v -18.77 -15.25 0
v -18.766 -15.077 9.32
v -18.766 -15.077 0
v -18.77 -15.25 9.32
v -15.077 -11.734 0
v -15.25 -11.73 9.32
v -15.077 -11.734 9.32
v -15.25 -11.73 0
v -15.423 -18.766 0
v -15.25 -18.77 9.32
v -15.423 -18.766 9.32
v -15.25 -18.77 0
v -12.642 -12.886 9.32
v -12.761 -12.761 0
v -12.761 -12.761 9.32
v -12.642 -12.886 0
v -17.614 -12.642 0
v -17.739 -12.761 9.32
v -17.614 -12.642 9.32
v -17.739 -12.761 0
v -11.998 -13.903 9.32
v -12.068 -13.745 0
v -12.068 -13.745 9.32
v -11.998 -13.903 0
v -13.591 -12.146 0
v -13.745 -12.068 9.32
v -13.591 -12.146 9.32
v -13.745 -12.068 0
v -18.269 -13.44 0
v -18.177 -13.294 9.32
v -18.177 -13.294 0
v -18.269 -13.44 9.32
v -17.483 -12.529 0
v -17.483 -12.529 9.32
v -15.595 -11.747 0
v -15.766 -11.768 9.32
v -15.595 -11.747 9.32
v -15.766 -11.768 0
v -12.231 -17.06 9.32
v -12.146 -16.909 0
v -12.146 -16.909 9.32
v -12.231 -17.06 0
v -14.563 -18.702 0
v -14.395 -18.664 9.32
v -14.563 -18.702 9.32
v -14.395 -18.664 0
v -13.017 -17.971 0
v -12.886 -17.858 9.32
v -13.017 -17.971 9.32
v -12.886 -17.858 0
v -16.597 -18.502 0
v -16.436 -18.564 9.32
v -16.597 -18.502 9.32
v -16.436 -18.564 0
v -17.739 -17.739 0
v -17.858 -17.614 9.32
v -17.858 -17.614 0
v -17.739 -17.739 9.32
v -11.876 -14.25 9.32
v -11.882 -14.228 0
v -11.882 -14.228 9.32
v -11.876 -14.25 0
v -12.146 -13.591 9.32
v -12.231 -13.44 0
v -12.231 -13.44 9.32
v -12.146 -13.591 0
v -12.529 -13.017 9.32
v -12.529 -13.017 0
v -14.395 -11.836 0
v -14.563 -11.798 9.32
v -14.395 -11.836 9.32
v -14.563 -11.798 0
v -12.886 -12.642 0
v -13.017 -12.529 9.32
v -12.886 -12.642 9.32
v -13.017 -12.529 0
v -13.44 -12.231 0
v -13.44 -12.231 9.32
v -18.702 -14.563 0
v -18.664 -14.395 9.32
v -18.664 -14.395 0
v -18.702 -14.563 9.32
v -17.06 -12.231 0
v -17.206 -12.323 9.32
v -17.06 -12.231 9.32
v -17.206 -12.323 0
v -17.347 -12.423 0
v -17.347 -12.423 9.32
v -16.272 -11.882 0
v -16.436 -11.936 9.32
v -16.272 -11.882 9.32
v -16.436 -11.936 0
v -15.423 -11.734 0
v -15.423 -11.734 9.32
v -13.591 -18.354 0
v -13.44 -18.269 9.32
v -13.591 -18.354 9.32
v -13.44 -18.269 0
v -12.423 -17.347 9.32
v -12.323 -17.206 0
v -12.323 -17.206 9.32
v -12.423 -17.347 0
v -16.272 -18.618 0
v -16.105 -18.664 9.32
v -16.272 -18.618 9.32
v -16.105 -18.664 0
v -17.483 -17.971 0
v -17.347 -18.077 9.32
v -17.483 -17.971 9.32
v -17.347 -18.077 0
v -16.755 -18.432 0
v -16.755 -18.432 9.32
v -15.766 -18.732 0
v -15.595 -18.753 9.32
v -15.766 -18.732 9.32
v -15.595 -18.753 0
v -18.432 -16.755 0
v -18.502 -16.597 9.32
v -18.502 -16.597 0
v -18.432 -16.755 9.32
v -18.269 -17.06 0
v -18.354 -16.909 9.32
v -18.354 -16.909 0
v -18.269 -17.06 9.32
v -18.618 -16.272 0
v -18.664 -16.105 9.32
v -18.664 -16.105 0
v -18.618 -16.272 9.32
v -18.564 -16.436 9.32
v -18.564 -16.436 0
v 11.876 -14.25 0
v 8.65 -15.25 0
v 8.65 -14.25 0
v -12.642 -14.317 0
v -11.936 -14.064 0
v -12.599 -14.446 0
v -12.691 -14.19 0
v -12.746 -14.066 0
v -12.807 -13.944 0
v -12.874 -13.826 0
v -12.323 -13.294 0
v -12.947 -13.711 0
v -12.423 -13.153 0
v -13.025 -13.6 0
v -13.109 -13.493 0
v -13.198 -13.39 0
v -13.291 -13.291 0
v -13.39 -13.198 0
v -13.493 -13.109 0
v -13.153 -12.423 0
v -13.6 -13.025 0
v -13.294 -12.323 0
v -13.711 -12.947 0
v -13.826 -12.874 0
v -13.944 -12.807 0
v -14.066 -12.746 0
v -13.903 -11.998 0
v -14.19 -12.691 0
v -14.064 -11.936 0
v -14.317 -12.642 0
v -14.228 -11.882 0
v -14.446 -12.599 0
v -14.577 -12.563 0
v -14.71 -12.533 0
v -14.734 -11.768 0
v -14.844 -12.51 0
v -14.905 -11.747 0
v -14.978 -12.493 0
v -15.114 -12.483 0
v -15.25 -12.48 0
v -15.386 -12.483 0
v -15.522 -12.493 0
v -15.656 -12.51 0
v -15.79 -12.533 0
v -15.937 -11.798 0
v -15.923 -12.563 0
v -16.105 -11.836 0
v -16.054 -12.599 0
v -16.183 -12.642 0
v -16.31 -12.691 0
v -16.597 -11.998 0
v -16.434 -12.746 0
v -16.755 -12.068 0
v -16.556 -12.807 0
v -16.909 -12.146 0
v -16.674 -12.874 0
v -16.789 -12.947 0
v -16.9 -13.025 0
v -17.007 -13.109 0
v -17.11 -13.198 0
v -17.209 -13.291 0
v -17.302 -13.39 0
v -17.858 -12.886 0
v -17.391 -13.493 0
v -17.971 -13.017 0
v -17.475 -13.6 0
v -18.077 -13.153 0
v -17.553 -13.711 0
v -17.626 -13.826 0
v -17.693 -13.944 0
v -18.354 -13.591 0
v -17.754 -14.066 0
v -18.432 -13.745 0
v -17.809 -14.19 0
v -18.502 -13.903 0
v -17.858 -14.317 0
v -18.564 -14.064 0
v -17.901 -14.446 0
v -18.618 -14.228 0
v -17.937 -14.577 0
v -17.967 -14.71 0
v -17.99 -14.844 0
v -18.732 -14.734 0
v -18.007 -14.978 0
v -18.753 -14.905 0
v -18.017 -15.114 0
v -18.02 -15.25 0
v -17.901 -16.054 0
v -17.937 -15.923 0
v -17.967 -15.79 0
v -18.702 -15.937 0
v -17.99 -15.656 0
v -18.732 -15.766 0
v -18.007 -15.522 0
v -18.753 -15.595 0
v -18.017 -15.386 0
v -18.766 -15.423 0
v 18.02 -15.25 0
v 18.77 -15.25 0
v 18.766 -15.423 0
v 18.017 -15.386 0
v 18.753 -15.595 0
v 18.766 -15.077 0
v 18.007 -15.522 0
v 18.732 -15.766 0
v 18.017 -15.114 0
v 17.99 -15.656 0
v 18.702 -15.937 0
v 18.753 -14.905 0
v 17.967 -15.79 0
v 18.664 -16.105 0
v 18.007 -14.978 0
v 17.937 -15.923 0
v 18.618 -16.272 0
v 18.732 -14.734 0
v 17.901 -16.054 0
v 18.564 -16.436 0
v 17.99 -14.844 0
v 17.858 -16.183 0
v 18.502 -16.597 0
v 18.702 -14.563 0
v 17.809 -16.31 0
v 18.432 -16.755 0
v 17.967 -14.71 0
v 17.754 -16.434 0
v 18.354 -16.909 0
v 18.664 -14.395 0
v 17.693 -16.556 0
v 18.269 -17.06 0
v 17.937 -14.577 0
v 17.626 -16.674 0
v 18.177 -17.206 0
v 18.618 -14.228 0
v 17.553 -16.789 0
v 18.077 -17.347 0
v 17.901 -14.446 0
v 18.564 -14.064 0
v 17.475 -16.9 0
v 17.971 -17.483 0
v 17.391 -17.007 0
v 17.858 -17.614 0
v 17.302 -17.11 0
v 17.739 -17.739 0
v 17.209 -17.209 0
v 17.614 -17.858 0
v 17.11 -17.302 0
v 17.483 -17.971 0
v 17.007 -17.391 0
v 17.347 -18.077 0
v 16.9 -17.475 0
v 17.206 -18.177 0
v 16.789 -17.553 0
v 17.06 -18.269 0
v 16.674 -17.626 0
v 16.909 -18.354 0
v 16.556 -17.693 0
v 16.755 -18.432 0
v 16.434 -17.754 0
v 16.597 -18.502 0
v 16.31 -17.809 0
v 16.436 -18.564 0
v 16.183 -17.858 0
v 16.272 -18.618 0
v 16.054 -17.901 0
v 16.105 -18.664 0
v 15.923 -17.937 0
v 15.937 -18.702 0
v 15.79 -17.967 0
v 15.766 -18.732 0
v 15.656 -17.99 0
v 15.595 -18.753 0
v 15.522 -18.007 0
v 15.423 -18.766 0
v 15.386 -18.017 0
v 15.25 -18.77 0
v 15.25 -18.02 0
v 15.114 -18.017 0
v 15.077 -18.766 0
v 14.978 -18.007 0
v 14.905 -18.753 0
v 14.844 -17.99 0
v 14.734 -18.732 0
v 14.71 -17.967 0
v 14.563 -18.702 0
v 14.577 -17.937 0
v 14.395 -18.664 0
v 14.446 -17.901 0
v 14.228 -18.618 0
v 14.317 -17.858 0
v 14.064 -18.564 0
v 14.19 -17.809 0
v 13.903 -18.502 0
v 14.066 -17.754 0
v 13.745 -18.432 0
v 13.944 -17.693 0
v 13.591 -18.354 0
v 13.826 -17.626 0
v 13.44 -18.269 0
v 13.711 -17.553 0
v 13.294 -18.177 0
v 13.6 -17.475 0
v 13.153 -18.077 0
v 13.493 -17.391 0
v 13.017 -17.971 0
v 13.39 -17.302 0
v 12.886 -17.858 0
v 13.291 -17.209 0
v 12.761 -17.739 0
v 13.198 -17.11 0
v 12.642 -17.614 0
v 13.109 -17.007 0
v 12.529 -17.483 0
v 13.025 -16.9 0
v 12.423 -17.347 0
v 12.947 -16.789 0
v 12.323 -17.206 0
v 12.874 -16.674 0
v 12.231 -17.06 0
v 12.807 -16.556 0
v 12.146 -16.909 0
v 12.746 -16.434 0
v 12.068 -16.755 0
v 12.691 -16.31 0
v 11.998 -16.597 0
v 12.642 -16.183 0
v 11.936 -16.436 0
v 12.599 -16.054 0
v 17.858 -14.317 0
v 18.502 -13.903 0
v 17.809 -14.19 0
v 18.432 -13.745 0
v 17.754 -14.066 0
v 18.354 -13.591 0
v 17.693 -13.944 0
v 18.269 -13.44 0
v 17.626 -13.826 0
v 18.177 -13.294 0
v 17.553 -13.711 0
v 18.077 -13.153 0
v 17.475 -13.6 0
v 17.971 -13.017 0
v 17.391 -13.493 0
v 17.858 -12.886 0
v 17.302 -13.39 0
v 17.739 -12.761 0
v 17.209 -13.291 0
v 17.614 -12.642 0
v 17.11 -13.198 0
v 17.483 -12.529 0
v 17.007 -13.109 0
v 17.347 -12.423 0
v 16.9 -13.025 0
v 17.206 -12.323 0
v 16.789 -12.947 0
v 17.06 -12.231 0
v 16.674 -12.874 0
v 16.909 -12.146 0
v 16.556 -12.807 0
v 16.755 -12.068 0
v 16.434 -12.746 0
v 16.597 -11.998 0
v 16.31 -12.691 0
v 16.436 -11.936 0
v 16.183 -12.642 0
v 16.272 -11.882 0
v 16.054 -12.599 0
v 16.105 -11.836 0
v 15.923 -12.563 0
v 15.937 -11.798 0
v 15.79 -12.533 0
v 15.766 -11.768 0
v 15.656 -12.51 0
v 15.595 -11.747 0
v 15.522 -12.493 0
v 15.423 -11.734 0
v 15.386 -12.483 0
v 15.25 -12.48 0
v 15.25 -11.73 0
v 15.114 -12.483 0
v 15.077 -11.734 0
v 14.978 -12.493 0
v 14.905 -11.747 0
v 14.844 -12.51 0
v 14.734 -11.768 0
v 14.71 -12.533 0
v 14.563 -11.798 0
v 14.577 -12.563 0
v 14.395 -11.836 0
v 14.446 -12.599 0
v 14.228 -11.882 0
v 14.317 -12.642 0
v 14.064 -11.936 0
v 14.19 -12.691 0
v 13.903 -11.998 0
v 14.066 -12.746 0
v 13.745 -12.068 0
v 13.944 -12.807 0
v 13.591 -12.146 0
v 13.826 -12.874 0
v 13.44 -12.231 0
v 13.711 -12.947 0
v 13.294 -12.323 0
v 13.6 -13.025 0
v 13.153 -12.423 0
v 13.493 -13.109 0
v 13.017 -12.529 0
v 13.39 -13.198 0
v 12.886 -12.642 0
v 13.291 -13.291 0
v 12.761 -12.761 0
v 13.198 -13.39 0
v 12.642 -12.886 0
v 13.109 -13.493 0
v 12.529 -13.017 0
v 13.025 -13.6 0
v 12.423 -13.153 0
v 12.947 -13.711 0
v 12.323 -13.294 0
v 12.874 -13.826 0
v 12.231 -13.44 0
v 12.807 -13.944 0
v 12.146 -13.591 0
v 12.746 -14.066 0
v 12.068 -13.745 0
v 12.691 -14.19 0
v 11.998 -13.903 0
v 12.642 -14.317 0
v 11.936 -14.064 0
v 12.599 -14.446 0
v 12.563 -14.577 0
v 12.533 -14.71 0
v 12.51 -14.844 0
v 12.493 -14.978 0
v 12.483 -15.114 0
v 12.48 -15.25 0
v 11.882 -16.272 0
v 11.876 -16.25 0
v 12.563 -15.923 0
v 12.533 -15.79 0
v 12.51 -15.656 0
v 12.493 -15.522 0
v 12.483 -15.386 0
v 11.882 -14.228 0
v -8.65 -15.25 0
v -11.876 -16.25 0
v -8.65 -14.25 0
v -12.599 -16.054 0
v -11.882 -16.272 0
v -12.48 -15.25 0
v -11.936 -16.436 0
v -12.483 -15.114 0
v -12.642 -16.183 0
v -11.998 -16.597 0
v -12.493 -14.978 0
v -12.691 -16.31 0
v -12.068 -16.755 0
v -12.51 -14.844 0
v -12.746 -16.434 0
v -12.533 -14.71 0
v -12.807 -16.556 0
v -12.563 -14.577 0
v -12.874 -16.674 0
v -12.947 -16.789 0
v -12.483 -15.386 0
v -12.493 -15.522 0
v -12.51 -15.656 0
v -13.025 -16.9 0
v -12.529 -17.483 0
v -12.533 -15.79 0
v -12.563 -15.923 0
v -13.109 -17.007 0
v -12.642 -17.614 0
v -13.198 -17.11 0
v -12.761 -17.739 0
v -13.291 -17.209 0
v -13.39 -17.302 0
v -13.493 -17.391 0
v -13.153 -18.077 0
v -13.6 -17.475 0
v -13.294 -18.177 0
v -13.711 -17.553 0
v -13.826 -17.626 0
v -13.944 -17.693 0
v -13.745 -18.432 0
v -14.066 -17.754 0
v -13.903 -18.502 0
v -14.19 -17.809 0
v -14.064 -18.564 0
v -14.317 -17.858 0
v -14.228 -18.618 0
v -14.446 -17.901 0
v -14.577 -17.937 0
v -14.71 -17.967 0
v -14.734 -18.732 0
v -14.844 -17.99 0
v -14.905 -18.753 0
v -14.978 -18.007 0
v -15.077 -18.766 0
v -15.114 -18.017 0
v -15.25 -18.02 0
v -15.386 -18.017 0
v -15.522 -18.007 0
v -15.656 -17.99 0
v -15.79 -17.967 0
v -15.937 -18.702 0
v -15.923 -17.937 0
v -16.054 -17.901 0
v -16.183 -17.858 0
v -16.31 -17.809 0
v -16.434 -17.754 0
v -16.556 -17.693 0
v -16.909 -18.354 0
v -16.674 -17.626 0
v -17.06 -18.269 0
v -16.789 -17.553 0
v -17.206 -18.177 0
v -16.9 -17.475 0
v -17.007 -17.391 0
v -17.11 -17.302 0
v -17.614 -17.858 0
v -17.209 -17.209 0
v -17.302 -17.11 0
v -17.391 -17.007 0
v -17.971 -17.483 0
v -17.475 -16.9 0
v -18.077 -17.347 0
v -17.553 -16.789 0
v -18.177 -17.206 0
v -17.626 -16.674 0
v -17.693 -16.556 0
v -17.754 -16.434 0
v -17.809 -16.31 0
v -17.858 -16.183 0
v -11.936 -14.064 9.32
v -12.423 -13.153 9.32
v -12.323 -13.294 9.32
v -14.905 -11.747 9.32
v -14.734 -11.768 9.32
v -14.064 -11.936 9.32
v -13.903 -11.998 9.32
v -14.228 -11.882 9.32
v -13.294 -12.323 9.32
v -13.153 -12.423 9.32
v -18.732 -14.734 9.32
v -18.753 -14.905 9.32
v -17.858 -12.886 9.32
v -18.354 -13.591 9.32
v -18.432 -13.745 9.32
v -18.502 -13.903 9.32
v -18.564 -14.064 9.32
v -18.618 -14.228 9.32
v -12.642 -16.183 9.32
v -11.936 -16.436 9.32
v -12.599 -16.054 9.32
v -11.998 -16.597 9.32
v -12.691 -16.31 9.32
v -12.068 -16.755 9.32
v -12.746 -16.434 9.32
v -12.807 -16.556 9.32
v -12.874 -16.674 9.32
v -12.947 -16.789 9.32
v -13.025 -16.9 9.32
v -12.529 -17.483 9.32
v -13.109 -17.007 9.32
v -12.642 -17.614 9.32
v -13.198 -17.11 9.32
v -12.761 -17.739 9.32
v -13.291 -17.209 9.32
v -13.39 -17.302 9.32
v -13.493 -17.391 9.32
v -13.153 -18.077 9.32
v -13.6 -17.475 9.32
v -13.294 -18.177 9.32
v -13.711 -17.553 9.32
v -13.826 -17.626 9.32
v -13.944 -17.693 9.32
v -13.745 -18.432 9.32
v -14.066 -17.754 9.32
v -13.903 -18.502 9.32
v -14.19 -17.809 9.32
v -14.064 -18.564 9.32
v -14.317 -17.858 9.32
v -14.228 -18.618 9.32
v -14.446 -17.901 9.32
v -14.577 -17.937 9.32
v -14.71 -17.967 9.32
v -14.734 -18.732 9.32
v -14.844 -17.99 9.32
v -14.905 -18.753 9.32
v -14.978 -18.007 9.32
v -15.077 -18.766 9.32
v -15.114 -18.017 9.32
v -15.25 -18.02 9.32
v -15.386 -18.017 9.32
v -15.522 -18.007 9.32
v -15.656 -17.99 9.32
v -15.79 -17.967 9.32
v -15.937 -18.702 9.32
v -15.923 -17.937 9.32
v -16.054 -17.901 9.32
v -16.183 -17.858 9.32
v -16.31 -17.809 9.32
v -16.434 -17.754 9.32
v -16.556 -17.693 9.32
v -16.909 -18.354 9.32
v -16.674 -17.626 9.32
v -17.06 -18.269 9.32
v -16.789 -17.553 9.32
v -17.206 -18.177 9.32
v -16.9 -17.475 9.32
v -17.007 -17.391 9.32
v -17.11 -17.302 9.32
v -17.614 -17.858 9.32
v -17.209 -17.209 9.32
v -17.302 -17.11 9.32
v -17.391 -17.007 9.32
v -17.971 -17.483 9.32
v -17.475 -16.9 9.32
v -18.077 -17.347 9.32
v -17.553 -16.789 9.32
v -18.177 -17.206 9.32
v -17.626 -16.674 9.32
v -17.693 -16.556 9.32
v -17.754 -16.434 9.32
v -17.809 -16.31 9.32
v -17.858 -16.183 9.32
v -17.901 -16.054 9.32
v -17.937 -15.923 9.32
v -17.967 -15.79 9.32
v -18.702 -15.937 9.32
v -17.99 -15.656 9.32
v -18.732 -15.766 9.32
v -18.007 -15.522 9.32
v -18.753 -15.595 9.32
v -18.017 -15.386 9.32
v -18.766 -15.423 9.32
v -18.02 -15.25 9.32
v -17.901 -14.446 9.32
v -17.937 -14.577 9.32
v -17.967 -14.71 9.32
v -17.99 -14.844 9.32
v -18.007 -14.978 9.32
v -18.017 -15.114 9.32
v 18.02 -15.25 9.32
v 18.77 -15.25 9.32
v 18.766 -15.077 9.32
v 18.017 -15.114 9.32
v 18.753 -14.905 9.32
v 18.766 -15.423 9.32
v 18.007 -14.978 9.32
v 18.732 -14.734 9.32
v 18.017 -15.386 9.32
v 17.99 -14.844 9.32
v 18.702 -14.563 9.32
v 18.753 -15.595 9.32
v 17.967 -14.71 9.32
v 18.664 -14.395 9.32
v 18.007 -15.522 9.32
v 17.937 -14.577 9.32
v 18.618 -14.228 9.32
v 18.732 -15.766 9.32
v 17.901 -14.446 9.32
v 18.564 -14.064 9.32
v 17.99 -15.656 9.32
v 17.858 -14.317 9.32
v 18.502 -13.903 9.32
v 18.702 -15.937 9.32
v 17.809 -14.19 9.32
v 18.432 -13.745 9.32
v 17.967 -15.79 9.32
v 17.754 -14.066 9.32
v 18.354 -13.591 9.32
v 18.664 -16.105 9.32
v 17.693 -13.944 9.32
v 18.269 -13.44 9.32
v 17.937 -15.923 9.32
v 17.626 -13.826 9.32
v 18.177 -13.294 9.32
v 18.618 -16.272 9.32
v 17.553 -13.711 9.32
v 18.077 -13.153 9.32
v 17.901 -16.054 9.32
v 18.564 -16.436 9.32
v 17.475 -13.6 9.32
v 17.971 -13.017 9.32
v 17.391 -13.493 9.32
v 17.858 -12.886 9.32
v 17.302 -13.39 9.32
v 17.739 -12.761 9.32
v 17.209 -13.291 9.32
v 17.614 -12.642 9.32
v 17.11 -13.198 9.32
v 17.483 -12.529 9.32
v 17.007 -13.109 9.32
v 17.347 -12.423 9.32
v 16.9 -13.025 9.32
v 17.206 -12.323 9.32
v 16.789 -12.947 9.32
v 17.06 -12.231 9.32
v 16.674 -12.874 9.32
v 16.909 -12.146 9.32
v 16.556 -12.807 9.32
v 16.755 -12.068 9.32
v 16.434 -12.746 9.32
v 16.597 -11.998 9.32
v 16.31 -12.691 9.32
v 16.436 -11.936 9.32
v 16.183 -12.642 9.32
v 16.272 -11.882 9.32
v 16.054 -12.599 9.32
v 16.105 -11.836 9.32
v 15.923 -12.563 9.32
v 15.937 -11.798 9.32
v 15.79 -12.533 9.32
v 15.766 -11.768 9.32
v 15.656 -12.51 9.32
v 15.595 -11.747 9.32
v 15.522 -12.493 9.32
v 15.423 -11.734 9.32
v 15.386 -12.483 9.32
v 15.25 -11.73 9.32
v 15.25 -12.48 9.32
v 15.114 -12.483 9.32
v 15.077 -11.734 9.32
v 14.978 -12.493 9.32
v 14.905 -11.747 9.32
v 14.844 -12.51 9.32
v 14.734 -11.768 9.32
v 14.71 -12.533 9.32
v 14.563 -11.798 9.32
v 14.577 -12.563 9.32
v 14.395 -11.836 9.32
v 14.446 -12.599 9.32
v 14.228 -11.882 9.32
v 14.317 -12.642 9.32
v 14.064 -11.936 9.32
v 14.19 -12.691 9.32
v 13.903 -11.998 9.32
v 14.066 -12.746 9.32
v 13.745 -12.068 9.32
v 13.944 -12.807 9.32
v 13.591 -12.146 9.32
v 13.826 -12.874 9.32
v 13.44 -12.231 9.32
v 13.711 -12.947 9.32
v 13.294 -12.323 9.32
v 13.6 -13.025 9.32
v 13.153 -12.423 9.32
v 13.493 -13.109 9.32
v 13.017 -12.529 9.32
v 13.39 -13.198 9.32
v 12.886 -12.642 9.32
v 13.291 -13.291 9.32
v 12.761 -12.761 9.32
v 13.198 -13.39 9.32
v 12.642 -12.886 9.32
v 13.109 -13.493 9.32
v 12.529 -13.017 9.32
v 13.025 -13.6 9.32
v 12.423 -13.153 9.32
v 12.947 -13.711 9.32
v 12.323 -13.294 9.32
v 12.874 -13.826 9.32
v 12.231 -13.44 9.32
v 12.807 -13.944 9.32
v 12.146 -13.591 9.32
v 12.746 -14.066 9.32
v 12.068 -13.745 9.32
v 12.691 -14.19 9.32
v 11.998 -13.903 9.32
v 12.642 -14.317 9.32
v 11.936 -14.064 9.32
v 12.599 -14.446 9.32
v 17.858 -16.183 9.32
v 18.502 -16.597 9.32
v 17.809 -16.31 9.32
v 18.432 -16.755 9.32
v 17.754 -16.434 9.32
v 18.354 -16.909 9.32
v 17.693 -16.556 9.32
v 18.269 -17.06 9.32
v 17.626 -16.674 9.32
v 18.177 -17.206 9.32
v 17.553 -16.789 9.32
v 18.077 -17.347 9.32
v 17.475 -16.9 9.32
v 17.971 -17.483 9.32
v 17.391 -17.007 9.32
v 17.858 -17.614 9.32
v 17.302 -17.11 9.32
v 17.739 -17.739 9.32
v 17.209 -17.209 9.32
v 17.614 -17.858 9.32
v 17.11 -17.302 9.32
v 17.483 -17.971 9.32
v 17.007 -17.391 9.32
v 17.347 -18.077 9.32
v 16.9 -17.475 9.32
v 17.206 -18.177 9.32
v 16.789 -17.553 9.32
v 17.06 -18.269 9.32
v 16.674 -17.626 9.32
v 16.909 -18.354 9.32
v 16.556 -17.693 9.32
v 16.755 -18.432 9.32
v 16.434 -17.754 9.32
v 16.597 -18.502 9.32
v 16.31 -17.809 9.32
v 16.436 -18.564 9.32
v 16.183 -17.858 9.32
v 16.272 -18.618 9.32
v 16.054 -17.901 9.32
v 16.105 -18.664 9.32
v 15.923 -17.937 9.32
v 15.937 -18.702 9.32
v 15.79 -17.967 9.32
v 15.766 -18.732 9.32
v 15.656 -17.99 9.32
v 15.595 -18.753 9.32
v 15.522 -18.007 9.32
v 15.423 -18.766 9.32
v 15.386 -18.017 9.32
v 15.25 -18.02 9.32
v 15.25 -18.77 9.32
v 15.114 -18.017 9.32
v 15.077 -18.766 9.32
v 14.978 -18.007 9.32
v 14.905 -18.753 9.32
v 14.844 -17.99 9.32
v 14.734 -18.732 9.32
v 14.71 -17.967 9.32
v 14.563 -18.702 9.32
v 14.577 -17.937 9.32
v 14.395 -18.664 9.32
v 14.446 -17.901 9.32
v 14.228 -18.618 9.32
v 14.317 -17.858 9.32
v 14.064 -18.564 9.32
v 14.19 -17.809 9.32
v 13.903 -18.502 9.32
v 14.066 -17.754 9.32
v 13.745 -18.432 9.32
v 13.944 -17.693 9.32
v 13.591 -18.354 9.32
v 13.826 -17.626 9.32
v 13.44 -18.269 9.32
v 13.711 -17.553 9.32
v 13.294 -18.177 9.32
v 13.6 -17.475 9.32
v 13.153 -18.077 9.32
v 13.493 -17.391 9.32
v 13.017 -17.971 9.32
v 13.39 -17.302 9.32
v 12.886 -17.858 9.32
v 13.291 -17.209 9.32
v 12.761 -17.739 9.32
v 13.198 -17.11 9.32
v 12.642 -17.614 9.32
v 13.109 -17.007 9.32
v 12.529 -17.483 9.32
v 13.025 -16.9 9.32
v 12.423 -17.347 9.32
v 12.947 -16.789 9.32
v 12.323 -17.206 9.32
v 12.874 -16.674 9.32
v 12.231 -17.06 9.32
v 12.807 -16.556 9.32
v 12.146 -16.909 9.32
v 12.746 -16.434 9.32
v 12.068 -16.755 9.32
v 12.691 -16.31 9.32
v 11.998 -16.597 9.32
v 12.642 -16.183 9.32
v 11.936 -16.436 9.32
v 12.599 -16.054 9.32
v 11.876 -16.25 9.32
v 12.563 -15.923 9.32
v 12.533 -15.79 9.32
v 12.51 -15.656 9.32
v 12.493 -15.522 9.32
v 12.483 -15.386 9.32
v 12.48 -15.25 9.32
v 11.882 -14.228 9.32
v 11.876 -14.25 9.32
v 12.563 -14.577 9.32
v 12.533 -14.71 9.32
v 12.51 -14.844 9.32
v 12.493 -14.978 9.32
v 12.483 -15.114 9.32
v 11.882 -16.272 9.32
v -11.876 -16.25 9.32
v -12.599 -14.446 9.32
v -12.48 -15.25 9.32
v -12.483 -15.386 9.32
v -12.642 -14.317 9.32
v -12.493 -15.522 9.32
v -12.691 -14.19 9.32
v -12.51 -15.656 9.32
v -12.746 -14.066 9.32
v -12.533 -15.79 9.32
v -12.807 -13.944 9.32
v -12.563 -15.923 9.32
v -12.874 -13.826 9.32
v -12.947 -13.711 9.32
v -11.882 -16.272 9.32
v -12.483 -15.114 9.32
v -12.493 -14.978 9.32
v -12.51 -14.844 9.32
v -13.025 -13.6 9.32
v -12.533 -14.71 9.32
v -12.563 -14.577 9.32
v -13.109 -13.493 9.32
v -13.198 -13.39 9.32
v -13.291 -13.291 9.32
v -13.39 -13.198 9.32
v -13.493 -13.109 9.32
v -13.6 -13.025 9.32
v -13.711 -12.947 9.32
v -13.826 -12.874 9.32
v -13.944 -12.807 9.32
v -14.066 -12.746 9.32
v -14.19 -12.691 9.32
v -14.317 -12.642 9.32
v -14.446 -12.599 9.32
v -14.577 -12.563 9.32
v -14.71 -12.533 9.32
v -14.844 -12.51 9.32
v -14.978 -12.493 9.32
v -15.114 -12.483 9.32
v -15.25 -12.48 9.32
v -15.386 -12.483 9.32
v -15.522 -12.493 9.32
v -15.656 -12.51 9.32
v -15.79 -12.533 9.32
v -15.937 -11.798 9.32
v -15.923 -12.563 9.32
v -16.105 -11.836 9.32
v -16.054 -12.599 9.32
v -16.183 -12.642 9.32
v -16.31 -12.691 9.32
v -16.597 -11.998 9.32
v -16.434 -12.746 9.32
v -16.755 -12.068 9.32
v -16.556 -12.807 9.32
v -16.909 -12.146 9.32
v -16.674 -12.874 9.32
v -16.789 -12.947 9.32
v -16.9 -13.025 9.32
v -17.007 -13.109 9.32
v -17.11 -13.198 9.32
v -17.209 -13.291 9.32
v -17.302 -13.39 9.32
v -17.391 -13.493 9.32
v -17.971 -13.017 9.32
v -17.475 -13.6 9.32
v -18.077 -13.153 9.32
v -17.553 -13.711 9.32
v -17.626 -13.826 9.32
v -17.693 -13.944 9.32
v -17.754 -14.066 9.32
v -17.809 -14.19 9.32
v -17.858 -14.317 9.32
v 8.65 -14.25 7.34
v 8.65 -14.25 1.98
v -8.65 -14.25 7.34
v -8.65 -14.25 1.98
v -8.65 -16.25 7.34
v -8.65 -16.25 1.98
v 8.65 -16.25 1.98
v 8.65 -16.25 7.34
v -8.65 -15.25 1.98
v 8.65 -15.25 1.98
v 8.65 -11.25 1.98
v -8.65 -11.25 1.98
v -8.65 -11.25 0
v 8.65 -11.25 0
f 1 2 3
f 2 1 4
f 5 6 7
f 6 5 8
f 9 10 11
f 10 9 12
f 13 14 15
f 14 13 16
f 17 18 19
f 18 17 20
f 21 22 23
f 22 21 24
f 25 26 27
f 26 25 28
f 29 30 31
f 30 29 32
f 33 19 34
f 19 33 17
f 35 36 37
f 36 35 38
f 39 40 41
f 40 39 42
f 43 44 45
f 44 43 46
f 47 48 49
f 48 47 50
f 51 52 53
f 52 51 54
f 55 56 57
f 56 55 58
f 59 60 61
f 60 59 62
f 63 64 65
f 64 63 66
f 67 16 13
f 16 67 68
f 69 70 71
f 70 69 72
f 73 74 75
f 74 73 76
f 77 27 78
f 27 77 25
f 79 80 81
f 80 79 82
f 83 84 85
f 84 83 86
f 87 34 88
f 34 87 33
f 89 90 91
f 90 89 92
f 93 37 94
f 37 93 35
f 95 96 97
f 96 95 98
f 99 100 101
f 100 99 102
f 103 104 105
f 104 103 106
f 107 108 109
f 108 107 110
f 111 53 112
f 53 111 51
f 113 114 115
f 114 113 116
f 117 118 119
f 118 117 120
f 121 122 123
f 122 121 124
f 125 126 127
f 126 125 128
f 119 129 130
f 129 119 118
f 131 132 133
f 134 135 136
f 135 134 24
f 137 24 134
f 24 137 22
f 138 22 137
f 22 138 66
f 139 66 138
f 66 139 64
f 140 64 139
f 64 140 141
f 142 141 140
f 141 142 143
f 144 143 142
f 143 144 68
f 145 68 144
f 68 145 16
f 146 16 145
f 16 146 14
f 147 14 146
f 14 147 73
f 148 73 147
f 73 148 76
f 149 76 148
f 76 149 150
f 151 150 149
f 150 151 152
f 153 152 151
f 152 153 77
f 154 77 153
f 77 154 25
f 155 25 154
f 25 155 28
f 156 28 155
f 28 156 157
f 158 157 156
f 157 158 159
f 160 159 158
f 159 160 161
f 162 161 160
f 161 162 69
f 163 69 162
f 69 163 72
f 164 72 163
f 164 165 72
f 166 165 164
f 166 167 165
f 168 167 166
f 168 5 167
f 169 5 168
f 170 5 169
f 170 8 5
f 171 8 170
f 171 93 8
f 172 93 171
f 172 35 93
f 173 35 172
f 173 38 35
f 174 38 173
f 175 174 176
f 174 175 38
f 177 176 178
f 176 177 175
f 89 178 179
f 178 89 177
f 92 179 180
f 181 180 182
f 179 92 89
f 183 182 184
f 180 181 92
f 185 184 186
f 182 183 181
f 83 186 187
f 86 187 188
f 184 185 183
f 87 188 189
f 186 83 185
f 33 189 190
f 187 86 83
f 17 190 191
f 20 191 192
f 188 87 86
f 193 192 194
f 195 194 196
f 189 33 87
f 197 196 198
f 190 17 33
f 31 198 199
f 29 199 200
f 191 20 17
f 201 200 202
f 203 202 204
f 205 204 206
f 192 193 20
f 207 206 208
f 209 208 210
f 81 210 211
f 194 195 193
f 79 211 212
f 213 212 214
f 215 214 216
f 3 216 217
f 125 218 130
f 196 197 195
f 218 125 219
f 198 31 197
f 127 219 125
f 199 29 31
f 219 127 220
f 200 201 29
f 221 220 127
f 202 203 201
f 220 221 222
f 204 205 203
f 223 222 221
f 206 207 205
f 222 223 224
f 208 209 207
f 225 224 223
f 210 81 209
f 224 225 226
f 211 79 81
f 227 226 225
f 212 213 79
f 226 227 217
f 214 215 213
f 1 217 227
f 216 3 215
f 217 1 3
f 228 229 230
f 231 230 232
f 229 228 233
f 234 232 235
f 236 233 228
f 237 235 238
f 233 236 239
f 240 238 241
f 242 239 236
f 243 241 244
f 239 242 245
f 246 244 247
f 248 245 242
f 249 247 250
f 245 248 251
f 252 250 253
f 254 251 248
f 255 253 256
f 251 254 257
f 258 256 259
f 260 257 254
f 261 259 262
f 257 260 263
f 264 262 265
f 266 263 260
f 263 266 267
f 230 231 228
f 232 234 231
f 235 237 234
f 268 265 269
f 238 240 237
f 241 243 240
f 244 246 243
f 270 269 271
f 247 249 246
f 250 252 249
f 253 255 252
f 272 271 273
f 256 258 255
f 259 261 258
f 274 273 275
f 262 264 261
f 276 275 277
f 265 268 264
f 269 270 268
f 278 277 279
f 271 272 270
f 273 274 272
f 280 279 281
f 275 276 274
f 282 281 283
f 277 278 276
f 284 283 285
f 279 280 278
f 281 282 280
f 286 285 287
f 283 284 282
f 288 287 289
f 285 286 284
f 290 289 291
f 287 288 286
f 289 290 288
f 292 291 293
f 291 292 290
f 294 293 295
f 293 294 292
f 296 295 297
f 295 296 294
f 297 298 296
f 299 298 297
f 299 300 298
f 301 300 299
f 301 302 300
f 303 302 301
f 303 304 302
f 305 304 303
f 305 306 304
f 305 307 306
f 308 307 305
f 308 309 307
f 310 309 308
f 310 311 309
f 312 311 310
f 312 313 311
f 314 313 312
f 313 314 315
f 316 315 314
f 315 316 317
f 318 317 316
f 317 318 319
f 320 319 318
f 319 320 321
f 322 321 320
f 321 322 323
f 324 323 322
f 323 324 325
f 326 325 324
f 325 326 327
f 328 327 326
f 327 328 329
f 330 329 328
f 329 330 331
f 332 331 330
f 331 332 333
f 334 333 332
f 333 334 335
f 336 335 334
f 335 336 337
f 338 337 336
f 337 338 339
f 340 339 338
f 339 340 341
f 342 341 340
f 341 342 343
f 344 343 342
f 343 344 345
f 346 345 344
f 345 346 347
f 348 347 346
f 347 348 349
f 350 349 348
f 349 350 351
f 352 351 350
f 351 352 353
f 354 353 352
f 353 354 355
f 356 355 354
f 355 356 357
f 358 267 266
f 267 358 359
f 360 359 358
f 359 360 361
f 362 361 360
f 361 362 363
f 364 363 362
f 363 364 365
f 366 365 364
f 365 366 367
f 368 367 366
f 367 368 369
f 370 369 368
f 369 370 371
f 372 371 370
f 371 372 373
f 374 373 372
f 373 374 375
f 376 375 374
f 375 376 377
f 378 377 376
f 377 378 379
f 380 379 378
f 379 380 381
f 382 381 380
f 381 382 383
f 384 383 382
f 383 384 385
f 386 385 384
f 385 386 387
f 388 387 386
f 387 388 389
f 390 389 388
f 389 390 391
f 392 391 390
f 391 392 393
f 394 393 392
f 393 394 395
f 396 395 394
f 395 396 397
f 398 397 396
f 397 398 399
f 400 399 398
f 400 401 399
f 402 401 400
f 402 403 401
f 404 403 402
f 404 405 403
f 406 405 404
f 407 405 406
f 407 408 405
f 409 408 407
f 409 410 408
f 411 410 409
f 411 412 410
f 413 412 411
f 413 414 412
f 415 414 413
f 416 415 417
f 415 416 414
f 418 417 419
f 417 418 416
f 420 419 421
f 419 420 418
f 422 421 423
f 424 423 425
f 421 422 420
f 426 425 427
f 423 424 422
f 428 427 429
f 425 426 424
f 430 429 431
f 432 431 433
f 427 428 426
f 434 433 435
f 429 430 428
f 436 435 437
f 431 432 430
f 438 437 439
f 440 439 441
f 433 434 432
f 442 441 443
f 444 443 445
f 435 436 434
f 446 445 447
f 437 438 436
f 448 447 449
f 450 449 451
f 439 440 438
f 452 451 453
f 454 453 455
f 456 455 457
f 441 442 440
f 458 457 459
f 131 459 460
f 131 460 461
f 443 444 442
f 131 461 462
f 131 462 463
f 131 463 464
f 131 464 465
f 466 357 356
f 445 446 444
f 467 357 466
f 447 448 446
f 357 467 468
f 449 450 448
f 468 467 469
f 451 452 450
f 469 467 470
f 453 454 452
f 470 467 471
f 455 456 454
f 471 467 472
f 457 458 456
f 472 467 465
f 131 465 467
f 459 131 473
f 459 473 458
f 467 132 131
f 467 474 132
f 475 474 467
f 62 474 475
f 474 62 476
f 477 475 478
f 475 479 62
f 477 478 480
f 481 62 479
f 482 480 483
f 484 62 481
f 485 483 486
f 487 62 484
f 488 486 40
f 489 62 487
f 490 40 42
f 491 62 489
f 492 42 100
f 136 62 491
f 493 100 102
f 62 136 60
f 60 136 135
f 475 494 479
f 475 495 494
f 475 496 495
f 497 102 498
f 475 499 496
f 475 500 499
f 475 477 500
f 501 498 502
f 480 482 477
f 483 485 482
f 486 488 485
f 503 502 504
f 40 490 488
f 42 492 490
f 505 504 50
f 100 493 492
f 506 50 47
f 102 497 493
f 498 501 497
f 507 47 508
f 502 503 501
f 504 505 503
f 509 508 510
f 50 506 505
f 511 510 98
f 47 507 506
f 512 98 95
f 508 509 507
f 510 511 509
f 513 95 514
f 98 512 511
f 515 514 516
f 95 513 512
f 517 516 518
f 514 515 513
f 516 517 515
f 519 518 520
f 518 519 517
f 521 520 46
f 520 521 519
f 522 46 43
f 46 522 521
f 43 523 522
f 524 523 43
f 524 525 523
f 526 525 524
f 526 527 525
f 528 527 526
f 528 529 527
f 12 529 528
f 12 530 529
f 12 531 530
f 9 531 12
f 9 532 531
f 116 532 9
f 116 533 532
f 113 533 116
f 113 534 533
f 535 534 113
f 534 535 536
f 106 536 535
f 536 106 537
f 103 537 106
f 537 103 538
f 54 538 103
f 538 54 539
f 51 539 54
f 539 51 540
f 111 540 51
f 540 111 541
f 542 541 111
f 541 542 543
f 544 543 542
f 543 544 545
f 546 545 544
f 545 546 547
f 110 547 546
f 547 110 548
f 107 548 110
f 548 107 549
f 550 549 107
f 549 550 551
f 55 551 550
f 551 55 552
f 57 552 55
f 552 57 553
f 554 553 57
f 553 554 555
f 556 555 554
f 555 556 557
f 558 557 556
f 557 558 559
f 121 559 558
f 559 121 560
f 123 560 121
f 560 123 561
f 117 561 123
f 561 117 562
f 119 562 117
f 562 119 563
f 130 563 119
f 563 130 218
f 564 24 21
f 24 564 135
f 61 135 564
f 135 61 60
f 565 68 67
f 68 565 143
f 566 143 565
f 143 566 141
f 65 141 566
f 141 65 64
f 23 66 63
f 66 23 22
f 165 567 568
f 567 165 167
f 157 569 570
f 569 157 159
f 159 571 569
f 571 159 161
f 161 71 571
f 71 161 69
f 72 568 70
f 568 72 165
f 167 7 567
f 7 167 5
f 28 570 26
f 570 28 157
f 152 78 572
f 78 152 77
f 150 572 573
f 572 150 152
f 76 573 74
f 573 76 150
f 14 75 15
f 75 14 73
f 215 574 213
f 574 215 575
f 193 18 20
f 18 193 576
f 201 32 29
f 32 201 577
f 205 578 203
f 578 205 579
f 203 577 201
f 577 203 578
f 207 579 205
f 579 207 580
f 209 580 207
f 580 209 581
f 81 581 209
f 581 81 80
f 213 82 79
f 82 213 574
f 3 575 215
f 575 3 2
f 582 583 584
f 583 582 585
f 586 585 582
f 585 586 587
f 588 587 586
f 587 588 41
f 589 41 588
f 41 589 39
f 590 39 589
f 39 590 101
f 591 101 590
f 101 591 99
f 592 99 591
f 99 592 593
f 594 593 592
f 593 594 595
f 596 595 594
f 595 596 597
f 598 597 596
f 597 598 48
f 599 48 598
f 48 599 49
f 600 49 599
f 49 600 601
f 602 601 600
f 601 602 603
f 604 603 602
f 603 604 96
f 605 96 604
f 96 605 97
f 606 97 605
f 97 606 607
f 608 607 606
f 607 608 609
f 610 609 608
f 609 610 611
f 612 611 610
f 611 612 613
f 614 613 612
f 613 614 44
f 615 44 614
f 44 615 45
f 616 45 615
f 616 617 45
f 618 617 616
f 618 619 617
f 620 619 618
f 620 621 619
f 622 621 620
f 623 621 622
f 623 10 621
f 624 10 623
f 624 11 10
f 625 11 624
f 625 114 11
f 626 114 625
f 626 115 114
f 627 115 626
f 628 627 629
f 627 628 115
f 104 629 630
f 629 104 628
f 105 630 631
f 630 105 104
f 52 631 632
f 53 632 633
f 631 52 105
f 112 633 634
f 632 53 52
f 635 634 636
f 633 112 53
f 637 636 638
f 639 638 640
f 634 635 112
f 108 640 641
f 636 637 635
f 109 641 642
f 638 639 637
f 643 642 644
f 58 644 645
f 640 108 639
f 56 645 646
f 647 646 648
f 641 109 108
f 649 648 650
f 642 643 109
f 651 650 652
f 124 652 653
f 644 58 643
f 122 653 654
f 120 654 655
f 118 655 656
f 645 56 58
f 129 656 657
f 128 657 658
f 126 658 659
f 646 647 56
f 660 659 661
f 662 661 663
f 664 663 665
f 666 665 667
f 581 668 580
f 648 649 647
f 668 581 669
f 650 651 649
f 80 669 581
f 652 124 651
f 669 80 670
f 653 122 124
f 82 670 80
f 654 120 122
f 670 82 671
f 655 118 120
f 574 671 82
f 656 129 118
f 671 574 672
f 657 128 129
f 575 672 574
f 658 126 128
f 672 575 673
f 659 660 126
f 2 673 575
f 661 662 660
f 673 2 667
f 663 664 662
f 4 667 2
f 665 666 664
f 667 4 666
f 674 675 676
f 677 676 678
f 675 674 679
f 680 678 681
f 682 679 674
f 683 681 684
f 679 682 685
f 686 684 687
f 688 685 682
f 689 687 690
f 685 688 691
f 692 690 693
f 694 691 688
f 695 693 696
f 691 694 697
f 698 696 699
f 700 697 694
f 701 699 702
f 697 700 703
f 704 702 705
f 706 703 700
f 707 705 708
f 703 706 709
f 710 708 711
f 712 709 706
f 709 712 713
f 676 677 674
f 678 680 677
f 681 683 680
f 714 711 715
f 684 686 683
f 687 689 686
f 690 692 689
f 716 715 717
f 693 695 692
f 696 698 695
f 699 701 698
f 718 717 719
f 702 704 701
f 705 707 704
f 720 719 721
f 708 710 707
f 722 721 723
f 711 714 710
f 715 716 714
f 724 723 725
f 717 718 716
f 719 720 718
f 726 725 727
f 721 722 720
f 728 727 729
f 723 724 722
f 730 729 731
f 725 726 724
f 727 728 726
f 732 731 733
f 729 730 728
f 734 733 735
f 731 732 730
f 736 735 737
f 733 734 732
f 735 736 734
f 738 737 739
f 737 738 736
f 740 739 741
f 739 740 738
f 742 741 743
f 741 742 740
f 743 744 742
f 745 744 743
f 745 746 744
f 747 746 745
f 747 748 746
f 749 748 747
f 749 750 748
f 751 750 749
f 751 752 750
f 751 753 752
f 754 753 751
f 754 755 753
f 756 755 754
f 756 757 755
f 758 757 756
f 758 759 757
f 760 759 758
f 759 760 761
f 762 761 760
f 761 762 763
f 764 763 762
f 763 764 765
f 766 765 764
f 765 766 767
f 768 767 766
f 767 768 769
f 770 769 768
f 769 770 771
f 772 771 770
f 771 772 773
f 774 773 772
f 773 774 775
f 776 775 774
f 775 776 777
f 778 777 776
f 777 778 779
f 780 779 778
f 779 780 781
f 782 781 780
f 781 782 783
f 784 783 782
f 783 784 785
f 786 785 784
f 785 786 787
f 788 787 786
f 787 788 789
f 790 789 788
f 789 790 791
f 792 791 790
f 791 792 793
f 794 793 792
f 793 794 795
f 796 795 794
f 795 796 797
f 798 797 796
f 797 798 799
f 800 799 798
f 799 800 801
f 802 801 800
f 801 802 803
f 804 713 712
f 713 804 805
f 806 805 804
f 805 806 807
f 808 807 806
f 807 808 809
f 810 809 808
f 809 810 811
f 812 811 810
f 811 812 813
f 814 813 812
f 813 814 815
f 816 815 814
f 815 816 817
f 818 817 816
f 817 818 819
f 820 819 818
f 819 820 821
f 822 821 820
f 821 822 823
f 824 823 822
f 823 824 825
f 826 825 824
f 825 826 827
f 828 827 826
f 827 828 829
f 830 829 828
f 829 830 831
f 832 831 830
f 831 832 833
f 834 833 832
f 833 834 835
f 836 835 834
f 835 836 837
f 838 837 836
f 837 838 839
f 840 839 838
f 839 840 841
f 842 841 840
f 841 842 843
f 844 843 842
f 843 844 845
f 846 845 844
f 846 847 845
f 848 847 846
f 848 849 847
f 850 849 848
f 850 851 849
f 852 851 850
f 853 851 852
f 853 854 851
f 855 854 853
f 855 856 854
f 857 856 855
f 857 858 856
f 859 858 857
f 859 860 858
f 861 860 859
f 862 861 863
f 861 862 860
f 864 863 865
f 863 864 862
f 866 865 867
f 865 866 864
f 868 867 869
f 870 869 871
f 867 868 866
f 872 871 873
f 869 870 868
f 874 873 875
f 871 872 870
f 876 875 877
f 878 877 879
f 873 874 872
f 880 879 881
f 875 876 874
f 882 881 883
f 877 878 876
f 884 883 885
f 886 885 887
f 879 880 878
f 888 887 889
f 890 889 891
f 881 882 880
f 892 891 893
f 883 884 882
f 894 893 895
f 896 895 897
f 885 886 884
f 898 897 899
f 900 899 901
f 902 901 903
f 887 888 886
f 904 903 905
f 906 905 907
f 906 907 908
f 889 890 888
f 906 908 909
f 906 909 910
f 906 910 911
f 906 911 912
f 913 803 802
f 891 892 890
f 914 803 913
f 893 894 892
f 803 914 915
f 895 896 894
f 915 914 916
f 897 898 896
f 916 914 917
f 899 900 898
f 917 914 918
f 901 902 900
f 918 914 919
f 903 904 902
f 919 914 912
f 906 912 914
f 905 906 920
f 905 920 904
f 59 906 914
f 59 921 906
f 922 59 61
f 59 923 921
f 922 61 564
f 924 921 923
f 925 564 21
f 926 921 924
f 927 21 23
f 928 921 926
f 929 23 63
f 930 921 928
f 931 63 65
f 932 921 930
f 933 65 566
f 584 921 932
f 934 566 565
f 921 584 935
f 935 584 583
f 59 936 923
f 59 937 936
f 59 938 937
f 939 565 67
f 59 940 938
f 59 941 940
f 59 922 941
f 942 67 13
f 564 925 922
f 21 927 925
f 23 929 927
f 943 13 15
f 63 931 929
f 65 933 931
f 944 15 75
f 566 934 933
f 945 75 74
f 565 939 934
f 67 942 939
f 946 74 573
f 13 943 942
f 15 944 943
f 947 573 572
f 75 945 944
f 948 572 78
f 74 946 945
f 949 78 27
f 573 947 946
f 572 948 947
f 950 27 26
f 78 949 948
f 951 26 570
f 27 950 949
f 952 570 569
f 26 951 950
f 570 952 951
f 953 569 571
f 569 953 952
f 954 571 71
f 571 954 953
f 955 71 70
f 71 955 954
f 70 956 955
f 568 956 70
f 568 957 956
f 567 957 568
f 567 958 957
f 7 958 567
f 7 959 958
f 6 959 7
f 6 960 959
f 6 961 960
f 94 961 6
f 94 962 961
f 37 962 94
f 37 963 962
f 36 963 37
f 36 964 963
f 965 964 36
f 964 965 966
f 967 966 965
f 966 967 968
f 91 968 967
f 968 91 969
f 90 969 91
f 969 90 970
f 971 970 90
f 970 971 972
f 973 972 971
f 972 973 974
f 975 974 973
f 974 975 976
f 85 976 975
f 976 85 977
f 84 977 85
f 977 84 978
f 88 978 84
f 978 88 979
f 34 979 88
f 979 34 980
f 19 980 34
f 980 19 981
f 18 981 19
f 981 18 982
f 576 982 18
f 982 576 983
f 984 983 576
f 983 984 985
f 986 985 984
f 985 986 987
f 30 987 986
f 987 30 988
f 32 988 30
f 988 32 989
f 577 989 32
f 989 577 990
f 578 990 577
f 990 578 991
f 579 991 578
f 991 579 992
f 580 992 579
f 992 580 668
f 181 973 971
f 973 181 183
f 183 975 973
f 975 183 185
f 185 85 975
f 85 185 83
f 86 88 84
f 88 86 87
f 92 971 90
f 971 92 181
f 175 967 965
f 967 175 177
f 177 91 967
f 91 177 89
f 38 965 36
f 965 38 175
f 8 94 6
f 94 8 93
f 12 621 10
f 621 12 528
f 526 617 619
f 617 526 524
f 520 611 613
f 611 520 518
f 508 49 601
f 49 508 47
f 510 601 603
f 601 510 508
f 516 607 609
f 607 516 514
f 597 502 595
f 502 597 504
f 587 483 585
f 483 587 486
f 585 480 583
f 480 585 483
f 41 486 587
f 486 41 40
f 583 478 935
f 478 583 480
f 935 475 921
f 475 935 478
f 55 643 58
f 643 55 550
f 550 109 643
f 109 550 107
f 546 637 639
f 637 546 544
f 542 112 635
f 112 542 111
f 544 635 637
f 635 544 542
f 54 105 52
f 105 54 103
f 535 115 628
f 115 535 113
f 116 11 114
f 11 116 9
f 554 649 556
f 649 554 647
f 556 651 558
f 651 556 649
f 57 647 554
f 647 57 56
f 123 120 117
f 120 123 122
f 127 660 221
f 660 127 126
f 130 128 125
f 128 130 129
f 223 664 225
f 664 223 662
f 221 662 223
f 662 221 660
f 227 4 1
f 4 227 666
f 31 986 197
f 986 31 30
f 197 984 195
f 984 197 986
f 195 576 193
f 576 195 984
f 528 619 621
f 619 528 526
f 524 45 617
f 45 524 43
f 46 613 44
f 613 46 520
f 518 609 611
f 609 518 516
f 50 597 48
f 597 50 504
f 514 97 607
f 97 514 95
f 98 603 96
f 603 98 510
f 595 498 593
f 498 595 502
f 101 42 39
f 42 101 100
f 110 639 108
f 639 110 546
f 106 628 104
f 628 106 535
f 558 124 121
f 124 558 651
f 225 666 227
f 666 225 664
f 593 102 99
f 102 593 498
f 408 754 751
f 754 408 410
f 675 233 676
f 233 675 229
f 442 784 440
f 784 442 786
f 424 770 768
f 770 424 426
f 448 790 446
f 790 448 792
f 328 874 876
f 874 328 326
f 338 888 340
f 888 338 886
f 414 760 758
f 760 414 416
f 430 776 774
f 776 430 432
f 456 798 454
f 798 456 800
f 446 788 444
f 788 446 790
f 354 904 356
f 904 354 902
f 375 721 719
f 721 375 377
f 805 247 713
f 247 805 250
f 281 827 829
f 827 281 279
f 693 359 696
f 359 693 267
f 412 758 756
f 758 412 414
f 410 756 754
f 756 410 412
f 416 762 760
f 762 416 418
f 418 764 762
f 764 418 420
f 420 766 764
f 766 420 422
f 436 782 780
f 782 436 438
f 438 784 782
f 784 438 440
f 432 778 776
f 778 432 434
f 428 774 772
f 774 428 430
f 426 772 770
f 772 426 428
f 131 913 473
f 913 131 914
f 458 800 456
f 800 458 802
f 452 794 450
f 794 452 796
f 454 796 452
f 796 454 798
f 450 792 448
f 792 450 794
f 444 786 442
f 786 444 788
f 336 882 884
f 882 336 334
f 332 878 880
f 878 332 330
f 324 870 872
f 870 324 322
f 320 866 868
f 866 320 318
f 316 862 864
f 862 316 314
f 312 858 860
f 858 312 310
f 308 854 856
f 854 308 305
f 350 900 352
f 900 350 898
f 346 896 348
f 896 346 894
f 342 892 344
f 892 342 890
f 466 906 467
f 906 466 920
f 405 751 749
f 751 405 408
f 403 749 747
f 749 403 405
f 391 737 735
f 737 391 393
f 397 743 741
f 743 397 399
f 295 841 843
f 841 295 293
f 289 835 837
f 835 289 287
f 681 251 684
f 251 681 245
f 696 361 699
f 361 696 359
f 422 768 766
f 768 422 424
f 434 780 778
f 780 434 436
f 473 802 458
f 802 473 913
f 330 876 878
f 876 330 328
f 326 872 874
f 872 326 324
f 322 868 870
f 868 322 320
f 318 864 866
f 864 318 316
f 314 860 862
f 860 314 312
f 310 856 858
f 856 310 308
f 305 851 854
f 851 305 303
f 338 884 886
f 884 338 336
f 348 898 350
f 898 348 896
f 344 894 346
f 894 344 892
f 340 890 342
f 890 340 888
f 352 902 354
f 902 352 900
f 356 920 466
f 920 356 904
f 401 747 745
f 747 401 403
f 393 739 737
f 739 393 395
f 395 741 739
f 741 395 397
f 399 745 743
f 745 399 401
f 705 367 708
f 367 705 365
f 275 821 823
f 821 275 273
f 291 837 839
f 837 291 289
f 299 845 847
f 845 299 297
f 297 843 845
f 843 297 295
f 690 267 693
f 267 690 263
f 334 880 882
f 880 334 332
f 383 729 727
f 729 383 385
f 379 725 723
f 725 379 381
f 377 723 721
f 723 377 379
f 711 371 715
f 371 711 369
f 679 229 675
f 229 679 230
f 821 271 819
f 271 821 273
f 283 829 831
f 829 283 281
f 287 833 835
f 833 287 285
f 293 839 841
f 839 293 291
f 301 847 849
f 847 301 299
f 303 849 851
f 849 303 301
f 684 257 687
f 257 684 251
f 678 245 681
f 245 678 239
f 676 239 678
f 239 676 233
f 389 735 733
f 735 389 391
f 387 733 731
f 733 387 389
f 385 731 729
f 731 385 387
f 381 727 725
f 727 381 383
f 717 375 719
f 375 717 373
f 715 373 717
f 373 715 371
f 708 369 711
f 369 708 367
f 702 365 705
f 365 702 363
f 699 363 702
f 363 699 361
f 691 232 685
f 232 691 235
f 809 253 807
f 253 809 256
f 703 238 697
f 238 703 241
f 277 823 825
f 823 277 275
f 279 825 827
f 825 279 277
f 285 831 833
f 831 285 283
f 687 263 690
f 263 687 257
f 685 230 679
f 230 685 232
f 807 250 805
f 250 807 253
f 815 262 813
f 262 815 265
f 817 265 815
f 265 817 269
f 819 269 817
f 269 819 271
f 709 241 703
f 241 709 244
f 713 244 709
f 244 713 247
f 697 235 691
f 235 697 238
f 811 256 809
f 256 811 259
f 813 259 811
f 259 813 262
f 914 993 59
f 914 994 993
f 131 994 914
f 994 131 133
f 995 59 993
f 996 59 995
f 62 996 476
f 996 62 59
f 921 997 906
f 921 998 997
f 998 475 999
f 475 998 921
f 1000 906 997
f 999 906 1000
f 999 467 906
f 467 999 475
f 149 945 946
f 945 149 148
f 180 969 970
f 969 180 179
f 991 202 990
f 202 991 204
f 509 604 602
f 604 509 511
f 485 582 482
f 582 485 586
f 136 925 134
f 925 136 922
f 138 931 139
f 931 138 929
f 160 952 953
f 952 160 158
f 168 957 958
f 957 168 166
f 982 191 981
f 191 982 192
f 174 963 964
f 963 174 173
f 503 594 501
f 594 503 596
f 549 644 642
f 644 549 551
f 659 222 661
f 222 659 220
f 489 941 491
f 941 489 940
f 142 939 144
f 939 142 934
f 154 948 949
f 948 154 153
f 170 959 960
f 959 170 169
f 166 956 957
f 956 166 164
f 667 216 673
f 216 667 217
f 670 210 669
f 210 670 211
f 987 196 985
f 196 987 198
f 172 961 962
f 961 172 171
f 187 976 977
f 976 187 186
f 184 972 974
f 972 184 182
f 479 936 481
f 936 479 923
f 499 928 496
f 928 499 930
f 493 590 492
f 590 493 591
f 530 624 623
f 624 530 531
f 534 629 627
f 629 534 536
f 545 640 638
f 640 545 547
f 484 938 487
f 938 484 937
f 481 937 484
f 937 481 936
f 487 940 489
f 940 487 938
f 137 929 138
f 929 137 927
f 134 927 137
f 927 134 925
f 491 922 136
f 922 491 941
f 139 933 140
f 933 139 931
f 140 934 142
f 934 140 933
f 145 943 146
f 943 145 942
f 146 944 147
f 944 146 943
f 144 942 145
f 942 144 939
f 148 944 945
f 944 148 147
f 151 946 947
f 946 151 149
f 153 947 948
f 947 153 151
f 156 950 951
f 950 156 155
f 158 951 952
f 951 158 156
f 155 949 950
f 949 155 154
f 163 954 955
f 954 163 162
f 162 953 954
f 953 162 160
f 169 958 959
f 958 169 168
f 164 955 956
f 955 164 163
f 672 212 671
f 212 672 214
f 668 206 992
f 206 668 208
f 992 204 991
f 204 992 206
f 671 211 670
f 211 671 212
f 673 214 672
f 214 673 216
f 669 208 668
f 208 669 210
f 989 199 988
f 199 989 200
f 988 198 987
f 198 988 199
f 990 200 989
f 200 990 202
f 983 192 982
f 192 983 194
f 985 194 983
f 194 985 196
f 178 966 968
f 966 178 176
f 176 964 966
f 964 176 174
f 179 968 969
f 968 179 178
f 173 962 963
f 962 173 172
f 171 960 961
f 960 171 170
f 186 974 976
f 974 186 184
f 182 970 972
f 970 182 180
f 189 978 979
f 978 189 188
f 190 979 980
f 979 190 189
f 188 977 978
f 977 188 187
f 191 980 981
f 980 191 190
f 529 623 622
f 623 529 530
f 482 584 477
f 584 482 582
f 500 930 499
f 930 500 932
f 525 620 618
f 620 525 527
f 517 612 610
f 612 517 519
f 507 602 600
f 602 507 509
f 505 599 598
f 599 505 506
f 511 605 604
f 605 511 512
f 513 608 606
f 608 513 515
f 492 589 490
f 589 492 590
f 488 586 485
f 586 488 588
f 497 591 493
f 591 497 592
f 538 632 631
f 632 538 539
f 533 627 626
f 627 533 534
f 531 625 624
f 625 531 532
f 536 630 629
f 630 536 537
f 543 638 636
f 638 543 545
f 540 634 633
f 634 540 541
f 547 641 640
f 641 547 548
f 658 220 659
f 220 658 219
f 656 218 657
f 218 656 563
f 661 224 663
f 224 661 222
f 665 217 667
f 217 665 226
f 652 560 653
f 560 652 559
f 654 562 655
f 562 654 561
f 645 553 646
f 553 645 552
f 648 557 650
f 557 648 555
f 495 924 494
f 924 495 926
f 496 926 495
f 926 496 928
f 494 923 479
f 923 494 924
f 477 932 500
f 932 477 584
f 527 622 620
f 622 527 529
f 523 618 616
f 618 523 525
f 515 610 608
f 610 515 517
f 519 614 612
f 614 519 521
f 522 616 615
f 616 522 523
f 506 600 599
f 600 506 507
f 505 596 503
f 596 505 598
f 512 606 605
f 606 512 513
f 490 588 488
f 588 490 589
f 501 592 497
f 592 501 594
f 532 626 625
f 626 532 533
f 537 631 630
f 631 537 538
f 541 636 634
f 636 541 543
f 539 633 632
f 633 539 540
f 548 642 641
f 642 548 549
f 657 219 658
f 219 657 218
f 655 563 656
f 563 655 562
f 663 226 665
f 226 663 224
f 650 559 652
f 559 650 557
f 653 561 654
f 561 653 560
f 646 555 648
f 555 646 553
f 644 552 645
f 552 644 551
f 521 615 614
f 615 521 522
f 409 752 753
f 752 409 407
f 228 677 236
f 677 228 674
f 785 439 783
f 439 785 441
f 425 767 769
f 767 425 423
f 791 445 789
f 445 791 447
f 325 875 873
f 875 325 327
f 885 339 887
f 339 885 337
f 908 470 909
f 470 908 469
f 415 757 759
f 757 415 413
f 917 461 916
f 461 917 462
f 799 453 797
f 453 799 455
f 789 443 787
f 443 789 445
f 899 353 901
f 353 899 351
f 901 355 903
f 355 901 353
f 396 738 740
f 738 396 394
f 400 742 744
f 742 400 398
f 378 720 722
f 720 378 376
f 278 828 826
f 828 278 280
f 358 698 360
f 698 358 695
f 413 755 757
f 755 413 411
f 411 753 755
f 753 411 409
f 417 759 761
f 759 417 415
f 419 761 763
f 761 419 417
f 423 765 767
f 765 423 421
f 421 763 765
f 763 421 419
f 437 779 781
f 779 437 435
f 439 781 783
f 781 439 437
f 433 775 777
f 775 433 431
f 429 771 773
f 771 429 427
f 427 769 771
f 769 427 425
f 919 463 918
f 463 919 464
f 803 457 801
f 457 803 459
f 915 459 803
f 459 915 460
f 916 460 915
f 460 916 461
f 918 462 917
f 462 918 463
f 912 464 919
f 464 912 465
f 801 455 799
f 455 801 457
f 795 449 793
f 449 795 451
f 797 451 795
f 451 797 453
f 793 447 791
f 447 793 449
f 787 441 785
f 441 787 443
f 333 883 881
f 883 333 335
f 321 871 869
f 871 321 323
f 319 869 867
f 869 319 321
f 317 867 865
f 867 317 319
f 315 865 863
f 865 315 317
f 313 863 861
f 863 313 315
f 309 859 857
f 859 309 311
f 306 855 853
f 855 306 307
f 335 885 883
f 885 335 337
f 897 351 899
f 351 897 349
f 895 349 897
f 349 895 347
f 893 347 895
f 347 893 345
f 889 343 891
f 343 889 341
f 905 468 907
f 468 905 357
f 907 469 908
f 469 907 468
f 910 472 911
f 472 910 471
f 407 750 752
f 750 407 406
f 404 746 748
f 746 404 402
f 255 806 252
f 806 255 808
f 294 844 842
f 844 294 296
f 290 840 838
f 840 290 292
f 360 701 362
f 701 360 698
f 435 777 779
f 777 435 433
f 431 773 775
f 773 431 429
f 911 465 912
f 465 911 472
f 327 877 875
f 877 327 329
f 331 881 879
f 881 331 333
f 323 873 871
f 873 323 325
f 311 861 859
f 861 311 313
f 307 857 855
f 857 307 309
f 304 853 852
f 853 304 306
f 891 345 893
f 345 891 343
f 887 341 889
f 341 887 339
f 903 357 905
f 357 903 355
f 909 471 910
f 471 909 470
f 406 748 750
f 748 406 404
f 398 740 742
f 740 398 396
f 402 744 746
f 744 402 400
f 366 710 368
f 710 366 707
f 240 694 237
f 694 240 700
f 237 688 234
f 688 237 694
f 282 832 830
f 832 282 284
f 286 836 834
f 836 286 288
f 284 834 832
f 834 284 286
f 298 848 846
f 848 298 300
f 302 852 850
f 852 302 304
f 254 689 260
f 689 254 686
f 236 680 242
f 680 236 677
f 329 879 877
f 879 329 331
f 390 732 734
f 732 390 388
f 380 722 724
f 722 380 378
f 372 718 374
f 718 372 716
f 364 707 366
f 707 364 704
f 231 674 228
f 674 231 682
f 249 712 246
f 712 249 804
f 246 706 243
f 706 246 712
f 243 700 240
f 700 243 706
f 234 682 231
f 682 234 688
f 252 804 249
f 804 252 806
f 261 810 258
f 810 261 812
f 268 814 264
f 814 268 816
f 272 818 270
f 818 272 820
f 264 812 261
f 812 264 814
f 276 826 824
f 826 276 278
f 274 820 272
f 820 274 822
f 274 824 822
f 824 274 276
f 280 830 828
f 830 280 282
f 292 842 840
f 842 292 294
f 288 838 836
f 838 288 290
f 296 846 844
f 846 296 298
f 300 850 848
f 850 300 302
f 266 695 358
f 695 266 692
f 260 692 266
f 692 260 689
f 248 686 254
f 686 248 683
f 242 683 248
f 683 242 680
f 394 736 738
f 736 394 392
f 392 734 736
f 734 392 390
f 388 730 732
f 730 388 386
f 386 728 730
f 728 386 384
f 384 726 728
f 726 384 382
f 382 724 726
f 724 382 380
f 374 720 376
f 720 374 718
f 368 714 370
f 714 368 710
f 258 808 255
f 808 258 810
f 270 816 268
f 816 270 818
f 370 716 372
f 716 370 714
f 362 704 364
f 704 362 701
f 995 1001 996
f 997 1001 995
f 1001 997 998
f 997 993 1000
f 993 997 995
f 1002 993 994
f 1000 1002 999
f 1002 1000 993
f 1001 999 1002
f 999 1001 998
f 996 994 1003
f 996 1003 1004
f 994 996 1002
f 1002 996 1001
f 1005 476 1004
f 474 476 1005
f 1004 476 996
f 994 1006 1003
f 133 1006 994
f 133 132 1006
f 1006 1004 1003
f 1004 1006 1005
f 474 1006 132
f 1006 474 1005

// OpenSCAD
STANDOFF_DISTANCE = 30.5;
STANDOFF_DIAMETER = 5.04;


MOUNTH_HEIGHT = 9.32;
MOUNT_THICKNESS = 2;
STANDOFF_HEIGHT = 30;

BRIDGE_OFFSET = -2.52; // [-2.5:0.1:2.5]
TOLERANCE = 0.5; // [0:0.05:0.5]

VTX_WIDTH = 17.30;
VTX_HEIGHT_1 = 5.36;
VTX_HEIGHT_2_ANTENNA = 6.22;

VTX_CONNECTOR_HEIGHT = 6.57;
VTX_CONNECTOR_DEPTH = 4.20;

VTX_DEPTH = 31.96;



$fn = 128;
//frame_skeleton(STANDOFF_DISTANCE, STANDOFF_DIAMETER, STANDOFF_HEIGHT);
vtx_holder(STANDOFF_DISTANCE, STANDOFF_DIAMETER, MOUNTH_HEIGHT, 
           VTX_WIDTH, VTX_HEIGHT_1, VTX_HEIGHT_2_ANTENNA, TOLERANCE);        


module vtx_holder(standoff_distance, standoff_diameter, mount_height, vtx_width, vtx_height_1, vtx_height_2_antenna, tolerance) {
    
    shelf_height = (mount_height - vtx_height_1) / 2;
    shelf_depth = 4;
    
    union(){
        difference(){
            holder(standoff_distance, standoff_diameter, mount_height, tolerance);
            translate([0,-vtx_width, mount_height/2])    
            cube([vtx_width, 2*vtx_width, vtx_height_1], true);  
        }
        translate([0,-standoff_distance/2+shelf_depth/2, mount_height/2 -vtx_height_1/2 - shelf_height/2])            
        cube([vtx_width, shelf_depth, shelf_height], true);          
    }
}


module holder(standoff_distance, standoff_diameter, mount_height, tolerance) {
    mount_diameter = standoff_diameter + 2;
    mount_depth = 2;
    mount_offset = 0;
    
    

    angle_step = 90;
    number_of_bridges = 1;

    translate([0, 0,mount_height/2])
    
    difference(){
        union(){
            for (n = [0:1:number_of_bridges]){
                  rotate([0,0, n*angle_step])
                  translate([-standoff_distance/2,-standoff_distance/2, 0]) 
                  color("red")
                  standoff(mount_diameter, mount_height, true);
             };
             for (n = [0:1:number_of_bridges-1]){
                  rotate([0,0, n*angle_step])
                  translate([0,-standoff_distance/2, 0]) 
                  bridge(standoff_distance, mount_depth, mount_height, standoff_diameter, mount_offset, tolerance, true);
             };         
         };

         for (n = [0:1:number_of_bridges]){
                  rotate([0,0, n*angle_step])
                  translate([-standoff_distance/2,-standoff_distance/2, 0]) 
                  color("red")
                  standoff(standoff_diameter + tolerance, mount_height * 2, true);                  
         }    
        
    }
   
}

module frame_skeleton(standoff_distance, standoff_diameter, standoff_height) {
    base_width = 4;
    full_side_length = standoff_distance + standoff_diameter;
    echo(str("Side length", full_side_length));
    
    translate([0,0,-base_width/2])
    base(full_side_length, base_width, true);
    
    angle_step = 90;
    translate([0,0,standoff_height/2])
    for (n = [0:1:3]){
          rotate([0,0, n*angle_step])
          translate([standoff_distance/2,standoff_distance/2,0])
          standoff(standoff_diameter, standoff_height, true);
     }
     
     translate([0,0, standoff_height])
     base(full_side_length, base_width, true);
}

module base(full_side_length, base_width, center) {    
    color("green")
    cube([full_side_length,full_side_length, base_width], center);
}

module standoff(diameter, height, center) {
    color("yellow")
    cylinder(height,diameter/2, diameter/2, center);
}

module bridge(bridge_length, bridge_thickness, bridge_height, mount_diameter, bridge_offset, tolerance, center){
    angle_step = 180;
    
    color("red")
    difference(){
        translate([0, bridge_offset, 0])         
        cube([bridge_length, bridge_thickness, bridge_height], center);
        for (n = [0:1:1]){
          rotate([0,0, n*angle_step])
          translate([bridge_length/ 2, 0, 0]) 
          standoff(mount_diameter + tolerance, bridge_height*2, center);
        }
    }
}
